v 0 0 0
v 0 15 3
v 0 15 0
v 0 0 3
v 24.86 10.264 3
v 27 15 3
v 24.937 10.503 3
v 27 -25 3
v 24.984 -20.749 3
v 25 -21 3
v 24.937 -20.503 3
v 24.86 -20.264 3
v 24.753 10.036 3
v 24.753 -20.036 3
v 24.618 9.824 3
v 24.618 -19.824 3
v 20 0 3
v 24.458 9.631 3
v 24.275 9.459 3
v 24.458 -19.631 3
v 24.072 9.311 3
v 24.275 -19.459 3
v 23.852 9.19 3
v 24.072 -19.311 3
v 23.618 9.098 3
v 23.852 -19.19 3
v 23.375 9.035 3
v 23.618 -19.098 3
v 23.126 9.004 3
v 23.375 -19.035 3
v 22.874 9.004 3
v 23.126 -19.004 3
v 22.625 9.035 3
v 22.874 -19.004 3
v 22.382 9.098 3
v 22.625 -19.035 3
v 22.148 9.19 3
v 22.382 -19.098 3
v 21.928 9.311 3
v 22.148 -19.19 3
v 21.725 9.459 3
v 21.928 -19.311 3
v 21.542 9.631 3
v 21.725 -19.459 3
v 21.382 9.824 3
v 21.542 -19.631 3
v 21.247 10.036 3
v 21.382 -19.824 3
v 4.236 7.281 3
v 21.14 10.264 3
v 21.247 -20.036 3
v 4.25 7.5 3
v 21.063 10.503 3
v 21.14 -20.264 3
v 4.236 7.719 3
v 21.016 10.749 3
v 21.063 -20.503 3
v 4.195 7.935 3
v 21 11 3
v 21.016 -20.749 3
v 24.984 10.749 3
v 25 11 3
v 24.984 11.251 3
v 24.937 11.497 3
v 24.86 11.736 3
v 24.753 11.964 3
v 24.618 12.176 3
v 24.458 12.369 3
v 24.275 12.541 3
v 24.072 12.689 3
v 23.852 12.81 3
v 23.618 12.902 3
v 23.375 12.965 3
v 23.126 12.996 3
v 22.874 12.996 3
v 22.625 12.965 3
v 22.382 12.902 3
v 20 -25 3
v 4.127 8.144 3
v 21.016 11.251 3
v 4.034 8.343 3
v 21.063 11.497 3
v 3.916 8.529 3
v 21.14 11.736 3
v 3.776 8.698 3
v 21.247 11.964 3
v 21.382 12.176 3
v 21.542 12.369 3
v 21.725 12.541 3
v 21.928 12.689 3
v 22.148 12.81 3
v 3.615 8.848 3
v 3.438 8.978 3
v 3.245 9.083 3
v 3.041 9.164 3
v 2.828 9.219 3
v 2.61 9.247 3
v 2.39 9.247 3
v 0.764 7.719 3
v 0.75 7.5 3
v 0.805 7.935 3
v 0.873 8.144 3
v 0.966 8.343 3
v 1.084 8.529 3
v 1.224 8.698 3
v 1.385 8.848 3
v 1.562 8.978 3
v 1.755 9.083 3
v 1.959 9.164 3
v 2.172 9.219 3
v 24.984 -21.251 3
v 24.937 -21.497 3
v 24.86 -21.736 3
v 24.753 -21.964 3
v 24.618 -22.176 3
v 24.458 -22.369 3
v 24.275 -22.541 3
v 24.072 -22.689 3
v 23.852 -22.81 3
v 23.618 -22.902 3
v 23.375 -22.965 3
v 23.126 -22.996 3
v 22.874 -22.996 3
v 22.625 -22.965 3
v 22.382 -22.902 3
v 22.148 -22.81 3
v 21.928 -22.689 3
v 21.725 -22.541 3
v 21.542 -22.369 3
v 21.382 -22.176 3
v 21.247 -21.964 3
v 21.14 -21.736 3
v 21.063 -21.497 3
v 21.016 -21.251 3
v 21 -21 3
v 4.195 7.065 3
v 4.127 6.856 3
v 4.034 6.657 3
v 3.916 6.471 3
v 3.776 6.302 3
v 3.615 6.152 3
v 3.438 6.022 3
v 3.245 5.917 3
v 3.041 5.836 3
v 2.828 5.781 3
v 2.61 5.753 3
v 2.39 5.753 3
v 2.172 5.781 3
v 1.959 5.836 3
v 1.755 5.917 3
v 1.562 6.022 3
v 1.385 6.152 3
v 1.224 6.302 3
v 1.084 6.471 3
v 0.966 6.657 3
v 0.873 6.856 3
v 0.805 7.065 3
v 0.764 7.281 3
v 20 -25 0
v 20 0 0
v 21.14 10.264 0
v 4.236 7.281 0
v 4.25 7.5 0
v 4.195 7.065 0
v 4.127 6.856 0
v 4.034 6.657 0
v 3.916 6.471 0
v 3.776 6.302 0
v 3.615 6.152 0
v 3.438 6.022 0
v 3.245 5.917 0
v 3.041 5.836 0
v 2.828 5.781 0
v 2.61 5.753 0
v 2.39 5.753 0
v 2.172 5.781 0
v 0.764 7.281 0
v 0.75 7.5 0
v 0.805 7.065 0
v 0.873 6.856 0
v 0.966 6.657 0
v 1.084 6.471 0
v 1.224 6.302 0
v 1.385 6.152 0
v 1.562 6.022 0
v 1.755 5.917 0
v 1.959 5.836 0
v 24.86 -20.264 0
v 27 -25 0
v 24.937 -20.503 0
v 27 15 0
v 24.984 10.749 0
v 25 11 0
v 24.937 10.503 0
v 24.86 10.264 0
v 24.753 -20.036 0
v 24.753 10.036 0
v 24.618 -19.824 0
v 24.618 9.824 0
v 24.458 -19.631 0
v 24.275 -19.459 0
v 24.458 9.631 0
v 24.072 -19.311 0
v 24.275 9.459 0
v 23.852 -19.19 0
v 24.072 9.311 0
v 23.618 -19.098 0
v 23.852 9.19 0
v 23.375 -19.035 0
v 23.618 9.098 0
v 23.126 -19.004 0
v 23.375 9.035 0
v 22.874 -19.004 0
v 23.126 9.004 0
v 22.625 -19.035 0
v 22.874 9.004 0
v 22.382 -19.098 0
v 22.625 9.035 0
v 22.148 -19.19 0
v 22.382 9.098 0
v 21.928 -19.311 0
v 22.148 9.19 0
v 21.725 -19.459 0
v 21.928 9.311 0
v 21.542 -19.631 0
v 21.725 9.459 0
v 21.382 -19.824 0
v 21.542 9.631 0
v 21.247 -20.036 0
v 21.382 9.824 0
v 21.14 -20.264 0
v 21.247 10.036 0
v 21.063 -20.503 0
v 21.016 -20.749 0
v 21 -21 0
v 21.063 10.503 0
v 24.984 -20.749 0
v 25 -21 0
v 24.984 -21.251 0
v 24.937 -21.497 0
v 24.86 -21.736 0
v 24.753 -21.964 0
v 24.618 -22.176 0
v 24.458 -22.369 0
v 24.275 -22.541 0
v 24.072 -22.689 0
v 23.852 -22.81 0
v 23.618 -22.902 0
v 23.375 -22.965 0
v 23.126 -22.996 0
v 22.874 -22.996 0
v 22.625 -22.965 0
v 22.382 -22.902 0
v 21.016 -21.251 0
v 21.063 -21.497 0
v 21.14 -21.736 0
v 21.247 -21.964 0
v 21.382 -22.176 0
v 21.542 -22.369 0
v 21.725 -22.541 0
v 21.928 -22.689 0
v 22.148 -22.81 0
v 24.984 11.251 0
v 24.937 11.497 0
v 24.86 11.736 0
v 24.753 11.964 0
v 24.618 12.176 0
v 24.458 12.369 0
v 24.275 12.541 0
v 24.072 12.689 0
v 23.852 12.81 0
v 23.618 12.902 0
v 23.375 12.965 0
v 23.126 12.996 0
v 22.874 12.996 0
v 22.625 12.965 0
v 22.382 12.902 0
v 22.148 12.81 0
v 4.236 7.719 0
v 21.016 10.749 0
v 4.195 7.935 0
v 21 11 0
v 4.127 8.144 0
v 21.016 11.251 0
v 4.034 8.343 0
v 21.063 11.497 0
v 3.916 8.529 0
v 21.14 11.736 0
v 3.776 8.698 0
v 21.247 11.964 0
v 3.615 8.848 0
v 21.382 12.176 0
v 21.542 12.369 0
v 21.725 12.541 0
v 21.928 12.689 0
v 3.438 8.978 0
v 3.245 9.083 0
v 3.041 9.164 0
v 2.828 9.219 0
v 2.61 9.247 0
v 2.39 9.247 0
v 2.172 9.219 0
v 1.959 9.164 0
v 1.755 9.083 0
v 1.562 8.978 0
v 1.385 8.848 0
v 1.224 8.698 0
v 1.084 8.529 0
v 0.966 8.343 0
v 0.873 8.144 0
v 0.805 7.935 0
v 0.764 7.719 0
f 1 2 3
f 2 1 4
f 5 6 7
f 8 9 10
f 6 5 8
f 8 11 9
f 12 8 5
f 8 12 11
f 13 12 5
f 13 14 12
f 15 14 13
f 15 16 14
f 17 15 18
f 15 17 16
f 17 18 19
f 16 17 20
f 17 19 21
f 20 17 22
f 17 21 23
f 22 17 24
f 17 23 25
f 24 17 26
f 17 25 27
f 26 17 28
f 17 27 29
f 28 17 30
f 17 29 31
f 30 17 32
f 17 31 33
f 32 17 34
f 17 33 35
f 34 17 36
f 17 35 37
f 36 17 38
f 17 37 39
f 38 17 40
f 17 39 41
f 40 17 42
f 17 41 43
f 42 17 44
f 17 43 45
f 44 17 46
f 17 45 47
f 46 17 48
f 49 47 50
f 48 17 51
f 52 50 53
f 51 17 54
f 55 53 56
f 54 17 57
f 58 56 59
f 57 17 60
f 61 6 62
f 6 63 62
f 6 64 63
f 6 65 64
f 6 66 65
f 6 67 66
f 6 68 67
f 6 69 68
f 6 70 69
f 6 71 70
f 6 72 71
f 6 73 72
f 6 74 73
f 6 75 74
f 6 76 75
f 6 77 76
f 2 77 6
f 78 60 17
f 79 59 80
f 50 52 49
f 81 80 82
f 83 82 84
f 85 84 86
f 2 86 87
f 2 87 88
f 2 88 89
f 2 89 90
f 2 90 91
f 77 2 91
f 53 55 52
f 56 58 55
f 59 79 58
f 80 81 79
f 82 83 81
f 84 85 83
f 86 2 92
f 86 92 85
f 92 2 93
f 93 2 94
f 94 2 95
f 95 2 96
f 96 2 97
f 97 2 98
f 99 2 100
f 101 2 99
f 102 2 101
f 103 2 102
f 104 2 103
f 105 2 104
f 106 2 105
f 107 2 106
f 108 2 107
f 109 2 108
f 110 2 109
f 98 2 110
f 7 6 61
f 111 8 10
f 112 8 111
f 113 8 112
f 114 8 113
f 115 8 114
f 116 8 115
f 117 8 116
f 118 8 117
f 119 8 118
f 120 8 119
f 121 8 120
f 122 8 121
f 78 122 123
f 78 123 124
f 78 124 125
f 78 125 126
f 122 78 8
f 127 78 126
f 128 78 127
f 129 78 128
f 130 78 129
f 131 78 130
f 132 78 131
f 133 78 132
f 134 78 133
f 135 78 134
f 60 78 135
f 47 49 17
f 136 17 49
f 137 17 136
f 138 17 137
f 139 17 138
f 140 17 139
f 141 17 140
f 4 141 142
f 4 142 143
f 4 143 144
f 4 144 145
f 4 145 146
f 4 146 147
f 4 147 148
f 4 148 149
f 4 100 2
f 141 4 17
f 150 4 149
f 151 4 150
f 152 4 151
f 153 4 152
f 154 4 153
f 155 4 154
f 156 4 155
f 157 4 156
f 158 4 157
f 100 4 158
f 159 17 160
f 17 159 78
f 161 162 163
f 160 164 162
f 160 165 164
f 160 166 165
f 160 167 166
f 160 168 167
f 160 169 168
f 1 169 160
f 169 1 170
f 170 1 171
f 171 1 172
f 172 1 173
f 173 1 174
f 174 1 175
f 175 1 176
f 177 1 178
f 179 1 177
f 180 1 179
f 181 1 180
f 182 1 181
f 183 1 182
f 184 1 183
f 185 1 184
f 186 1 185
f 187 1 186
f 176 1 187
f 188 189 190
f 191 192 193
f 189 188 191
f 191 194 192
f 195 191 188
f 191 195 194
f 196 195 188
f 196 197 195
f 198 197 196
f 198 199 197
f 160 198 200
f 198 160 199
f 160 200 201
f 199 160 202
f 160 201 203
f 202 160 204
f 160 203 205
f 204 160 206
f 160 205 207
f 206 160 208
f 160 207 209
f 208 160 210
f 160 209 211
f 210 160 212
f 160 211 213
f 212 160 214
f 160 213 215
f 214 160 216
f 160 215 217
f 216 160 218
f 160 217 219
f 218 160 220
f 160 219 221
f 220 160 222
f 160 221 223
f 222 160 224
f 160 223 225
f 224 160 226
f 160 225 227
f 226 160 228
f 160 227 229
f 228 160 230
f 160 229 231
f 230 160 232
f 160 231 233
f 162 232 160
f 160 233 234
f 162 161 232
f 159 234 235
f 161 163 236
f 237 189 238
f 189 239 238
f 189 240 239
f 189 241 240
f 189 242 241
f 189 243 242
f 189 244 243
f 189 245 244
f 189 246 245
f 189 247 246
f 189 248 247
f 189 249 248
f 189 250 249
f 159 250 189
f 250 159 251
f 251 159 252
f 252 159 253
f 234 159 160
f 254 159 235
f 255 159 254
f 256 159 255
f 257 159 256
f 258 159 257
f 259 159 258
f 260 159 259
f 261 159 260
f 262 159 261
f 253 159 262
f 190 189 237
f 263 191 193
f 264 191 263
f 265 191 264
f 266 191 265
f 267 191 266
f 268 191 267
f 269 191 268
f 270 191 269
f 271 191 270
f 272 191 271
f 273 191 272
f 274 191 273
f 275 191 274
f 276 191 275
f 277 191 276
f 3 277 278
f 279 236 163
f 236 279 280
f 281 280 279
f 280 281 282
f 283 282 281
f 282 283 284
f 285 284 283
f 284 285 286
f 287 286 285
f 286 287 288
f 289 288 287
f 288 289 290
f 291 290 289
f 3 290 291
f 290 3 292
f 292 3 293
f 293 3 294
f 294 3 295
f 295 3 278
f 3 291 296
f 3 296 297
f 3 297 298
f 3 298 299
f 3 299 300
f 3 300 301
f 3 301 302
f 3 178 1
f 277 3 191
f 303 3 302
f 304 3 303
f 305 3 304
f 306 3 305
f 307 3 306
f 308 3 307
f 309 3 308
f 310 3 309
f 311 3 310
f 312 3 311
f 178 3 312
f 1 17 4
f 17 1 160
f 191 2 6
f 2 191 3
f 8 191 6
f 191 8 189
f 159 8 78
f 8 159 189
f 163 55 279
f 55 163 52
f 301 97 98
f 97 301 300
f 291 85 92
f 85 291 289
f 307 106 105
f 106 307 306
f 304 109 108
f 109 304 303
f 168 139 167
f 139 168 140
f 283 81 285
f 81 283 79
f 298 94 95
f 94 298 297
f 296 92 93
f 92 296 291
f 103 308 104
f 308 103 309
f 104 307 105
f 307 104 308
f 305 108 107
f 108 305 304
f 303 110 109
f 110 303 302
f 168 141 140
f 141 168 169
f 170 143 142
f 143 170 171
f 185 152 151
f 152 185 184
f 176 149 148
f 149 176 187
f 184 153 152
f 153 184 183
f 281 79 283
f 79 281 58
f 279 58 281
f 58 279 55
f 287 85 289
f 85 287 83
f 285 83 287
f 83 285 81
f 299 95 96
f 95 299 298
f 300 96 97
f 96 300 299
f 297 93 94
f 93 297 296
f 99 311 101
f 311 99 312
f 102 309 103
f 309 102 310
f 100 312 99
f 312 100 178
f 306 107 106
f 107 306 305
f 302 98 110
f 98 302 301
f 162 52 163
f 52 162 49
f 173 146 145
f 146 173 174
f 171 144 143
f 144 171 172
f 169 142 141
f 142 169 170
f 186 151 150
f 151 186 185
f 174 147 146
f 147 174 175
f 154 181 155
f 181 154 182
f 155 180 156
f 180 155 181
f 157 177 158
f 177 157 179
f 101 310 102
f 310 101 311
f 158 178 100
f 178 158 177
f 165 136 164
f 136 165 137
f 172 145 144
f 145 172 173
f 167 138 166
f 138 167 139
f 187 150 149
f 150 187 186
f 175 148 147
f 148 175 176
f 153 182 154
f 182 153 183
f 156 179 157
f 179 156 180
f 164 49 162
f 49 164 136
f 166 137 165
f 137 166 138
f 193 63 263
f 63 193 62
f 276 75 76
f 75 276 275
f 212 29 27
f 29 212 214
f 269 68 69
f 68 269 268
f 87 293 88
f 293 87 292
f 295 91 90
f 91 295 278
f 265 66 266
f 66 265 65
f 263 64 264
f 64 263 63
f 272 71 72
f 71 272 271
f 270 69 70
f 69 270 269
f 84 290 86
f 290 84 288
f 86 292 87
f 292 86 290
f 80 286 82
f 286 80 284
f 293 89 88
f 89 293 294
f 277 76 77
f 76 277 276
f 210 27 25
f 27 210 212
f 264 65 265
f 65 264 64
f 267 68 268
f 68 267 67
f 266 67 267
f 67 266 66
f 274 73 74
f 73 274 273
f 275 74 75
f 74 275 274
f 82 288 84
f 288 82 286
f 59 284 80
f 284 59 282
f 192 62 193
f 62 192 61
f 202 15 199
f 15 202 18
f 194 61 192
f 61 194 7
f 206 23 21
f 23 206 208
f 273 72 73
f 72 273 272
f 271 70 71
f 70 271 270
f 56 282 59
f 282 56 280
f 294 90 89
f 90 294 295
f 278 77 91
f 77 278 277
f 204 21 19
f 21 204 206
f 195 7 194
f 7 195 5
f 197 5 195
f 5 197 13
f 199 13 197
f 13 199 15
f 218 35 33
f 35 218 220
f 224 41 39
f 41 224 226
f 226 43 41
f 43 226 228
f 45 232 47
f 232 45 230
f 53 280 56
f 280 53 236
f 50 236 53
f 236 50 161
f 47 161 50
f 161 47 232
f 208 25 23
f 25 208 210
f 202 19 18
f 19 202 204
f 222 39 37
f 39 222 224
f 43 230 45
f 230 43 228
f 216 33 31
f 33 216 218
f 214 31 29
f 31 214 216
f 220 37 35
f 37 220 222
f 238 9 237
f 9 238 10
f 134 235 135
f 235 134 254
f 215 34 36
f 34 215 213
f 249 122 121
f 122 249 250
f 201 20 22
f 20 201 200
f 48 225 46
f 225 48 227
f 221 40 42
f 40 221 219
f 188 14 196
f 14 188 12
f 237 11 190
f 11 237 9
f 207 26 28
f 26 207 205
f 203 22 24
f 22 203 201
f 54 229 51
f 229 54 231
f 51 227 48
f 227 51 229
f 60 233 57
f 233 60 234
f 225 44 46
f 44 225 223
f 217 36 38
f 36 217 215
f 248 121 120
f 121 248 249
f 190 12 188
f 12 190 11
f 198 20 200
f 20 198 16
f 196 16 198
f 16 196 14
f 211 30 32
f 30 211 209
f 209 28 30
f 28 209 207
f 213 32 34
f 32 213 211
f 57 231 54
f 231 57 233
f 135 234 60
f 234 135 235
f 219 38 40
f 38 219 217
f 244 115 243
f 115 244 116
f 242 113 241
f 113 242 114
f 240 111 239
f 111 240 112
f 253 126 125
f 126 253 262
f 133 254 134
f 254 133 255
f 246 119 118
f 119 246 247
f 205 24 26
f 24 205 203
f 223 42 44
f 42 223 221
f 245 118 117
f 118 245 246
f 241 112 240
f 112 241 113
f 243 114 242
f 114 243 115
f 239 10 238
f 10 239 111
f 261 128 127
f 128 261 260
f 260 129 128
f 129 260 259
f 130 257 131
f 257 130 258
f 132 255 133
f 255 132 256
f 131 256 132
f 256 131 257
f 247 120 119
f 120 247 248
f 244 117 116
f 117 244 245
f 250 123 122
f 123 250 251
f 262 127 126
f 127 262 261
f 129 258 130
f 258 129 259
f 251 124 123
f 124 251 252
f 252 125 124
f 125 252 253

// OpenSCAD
$fn=50;

difference(){
    union() {
        cube([20,15,3]);
        translate([20,-25,0]) cube([7,40,3]);  
    }
    translate([2.5,7.5,0])cylinder(10,3.5/2,3.5/2);
    
    translate([23,11,0])cylinder(10,4/2,4/2);
    translate([23,-21,0])cylinder(10,4/2,4/2);
}
